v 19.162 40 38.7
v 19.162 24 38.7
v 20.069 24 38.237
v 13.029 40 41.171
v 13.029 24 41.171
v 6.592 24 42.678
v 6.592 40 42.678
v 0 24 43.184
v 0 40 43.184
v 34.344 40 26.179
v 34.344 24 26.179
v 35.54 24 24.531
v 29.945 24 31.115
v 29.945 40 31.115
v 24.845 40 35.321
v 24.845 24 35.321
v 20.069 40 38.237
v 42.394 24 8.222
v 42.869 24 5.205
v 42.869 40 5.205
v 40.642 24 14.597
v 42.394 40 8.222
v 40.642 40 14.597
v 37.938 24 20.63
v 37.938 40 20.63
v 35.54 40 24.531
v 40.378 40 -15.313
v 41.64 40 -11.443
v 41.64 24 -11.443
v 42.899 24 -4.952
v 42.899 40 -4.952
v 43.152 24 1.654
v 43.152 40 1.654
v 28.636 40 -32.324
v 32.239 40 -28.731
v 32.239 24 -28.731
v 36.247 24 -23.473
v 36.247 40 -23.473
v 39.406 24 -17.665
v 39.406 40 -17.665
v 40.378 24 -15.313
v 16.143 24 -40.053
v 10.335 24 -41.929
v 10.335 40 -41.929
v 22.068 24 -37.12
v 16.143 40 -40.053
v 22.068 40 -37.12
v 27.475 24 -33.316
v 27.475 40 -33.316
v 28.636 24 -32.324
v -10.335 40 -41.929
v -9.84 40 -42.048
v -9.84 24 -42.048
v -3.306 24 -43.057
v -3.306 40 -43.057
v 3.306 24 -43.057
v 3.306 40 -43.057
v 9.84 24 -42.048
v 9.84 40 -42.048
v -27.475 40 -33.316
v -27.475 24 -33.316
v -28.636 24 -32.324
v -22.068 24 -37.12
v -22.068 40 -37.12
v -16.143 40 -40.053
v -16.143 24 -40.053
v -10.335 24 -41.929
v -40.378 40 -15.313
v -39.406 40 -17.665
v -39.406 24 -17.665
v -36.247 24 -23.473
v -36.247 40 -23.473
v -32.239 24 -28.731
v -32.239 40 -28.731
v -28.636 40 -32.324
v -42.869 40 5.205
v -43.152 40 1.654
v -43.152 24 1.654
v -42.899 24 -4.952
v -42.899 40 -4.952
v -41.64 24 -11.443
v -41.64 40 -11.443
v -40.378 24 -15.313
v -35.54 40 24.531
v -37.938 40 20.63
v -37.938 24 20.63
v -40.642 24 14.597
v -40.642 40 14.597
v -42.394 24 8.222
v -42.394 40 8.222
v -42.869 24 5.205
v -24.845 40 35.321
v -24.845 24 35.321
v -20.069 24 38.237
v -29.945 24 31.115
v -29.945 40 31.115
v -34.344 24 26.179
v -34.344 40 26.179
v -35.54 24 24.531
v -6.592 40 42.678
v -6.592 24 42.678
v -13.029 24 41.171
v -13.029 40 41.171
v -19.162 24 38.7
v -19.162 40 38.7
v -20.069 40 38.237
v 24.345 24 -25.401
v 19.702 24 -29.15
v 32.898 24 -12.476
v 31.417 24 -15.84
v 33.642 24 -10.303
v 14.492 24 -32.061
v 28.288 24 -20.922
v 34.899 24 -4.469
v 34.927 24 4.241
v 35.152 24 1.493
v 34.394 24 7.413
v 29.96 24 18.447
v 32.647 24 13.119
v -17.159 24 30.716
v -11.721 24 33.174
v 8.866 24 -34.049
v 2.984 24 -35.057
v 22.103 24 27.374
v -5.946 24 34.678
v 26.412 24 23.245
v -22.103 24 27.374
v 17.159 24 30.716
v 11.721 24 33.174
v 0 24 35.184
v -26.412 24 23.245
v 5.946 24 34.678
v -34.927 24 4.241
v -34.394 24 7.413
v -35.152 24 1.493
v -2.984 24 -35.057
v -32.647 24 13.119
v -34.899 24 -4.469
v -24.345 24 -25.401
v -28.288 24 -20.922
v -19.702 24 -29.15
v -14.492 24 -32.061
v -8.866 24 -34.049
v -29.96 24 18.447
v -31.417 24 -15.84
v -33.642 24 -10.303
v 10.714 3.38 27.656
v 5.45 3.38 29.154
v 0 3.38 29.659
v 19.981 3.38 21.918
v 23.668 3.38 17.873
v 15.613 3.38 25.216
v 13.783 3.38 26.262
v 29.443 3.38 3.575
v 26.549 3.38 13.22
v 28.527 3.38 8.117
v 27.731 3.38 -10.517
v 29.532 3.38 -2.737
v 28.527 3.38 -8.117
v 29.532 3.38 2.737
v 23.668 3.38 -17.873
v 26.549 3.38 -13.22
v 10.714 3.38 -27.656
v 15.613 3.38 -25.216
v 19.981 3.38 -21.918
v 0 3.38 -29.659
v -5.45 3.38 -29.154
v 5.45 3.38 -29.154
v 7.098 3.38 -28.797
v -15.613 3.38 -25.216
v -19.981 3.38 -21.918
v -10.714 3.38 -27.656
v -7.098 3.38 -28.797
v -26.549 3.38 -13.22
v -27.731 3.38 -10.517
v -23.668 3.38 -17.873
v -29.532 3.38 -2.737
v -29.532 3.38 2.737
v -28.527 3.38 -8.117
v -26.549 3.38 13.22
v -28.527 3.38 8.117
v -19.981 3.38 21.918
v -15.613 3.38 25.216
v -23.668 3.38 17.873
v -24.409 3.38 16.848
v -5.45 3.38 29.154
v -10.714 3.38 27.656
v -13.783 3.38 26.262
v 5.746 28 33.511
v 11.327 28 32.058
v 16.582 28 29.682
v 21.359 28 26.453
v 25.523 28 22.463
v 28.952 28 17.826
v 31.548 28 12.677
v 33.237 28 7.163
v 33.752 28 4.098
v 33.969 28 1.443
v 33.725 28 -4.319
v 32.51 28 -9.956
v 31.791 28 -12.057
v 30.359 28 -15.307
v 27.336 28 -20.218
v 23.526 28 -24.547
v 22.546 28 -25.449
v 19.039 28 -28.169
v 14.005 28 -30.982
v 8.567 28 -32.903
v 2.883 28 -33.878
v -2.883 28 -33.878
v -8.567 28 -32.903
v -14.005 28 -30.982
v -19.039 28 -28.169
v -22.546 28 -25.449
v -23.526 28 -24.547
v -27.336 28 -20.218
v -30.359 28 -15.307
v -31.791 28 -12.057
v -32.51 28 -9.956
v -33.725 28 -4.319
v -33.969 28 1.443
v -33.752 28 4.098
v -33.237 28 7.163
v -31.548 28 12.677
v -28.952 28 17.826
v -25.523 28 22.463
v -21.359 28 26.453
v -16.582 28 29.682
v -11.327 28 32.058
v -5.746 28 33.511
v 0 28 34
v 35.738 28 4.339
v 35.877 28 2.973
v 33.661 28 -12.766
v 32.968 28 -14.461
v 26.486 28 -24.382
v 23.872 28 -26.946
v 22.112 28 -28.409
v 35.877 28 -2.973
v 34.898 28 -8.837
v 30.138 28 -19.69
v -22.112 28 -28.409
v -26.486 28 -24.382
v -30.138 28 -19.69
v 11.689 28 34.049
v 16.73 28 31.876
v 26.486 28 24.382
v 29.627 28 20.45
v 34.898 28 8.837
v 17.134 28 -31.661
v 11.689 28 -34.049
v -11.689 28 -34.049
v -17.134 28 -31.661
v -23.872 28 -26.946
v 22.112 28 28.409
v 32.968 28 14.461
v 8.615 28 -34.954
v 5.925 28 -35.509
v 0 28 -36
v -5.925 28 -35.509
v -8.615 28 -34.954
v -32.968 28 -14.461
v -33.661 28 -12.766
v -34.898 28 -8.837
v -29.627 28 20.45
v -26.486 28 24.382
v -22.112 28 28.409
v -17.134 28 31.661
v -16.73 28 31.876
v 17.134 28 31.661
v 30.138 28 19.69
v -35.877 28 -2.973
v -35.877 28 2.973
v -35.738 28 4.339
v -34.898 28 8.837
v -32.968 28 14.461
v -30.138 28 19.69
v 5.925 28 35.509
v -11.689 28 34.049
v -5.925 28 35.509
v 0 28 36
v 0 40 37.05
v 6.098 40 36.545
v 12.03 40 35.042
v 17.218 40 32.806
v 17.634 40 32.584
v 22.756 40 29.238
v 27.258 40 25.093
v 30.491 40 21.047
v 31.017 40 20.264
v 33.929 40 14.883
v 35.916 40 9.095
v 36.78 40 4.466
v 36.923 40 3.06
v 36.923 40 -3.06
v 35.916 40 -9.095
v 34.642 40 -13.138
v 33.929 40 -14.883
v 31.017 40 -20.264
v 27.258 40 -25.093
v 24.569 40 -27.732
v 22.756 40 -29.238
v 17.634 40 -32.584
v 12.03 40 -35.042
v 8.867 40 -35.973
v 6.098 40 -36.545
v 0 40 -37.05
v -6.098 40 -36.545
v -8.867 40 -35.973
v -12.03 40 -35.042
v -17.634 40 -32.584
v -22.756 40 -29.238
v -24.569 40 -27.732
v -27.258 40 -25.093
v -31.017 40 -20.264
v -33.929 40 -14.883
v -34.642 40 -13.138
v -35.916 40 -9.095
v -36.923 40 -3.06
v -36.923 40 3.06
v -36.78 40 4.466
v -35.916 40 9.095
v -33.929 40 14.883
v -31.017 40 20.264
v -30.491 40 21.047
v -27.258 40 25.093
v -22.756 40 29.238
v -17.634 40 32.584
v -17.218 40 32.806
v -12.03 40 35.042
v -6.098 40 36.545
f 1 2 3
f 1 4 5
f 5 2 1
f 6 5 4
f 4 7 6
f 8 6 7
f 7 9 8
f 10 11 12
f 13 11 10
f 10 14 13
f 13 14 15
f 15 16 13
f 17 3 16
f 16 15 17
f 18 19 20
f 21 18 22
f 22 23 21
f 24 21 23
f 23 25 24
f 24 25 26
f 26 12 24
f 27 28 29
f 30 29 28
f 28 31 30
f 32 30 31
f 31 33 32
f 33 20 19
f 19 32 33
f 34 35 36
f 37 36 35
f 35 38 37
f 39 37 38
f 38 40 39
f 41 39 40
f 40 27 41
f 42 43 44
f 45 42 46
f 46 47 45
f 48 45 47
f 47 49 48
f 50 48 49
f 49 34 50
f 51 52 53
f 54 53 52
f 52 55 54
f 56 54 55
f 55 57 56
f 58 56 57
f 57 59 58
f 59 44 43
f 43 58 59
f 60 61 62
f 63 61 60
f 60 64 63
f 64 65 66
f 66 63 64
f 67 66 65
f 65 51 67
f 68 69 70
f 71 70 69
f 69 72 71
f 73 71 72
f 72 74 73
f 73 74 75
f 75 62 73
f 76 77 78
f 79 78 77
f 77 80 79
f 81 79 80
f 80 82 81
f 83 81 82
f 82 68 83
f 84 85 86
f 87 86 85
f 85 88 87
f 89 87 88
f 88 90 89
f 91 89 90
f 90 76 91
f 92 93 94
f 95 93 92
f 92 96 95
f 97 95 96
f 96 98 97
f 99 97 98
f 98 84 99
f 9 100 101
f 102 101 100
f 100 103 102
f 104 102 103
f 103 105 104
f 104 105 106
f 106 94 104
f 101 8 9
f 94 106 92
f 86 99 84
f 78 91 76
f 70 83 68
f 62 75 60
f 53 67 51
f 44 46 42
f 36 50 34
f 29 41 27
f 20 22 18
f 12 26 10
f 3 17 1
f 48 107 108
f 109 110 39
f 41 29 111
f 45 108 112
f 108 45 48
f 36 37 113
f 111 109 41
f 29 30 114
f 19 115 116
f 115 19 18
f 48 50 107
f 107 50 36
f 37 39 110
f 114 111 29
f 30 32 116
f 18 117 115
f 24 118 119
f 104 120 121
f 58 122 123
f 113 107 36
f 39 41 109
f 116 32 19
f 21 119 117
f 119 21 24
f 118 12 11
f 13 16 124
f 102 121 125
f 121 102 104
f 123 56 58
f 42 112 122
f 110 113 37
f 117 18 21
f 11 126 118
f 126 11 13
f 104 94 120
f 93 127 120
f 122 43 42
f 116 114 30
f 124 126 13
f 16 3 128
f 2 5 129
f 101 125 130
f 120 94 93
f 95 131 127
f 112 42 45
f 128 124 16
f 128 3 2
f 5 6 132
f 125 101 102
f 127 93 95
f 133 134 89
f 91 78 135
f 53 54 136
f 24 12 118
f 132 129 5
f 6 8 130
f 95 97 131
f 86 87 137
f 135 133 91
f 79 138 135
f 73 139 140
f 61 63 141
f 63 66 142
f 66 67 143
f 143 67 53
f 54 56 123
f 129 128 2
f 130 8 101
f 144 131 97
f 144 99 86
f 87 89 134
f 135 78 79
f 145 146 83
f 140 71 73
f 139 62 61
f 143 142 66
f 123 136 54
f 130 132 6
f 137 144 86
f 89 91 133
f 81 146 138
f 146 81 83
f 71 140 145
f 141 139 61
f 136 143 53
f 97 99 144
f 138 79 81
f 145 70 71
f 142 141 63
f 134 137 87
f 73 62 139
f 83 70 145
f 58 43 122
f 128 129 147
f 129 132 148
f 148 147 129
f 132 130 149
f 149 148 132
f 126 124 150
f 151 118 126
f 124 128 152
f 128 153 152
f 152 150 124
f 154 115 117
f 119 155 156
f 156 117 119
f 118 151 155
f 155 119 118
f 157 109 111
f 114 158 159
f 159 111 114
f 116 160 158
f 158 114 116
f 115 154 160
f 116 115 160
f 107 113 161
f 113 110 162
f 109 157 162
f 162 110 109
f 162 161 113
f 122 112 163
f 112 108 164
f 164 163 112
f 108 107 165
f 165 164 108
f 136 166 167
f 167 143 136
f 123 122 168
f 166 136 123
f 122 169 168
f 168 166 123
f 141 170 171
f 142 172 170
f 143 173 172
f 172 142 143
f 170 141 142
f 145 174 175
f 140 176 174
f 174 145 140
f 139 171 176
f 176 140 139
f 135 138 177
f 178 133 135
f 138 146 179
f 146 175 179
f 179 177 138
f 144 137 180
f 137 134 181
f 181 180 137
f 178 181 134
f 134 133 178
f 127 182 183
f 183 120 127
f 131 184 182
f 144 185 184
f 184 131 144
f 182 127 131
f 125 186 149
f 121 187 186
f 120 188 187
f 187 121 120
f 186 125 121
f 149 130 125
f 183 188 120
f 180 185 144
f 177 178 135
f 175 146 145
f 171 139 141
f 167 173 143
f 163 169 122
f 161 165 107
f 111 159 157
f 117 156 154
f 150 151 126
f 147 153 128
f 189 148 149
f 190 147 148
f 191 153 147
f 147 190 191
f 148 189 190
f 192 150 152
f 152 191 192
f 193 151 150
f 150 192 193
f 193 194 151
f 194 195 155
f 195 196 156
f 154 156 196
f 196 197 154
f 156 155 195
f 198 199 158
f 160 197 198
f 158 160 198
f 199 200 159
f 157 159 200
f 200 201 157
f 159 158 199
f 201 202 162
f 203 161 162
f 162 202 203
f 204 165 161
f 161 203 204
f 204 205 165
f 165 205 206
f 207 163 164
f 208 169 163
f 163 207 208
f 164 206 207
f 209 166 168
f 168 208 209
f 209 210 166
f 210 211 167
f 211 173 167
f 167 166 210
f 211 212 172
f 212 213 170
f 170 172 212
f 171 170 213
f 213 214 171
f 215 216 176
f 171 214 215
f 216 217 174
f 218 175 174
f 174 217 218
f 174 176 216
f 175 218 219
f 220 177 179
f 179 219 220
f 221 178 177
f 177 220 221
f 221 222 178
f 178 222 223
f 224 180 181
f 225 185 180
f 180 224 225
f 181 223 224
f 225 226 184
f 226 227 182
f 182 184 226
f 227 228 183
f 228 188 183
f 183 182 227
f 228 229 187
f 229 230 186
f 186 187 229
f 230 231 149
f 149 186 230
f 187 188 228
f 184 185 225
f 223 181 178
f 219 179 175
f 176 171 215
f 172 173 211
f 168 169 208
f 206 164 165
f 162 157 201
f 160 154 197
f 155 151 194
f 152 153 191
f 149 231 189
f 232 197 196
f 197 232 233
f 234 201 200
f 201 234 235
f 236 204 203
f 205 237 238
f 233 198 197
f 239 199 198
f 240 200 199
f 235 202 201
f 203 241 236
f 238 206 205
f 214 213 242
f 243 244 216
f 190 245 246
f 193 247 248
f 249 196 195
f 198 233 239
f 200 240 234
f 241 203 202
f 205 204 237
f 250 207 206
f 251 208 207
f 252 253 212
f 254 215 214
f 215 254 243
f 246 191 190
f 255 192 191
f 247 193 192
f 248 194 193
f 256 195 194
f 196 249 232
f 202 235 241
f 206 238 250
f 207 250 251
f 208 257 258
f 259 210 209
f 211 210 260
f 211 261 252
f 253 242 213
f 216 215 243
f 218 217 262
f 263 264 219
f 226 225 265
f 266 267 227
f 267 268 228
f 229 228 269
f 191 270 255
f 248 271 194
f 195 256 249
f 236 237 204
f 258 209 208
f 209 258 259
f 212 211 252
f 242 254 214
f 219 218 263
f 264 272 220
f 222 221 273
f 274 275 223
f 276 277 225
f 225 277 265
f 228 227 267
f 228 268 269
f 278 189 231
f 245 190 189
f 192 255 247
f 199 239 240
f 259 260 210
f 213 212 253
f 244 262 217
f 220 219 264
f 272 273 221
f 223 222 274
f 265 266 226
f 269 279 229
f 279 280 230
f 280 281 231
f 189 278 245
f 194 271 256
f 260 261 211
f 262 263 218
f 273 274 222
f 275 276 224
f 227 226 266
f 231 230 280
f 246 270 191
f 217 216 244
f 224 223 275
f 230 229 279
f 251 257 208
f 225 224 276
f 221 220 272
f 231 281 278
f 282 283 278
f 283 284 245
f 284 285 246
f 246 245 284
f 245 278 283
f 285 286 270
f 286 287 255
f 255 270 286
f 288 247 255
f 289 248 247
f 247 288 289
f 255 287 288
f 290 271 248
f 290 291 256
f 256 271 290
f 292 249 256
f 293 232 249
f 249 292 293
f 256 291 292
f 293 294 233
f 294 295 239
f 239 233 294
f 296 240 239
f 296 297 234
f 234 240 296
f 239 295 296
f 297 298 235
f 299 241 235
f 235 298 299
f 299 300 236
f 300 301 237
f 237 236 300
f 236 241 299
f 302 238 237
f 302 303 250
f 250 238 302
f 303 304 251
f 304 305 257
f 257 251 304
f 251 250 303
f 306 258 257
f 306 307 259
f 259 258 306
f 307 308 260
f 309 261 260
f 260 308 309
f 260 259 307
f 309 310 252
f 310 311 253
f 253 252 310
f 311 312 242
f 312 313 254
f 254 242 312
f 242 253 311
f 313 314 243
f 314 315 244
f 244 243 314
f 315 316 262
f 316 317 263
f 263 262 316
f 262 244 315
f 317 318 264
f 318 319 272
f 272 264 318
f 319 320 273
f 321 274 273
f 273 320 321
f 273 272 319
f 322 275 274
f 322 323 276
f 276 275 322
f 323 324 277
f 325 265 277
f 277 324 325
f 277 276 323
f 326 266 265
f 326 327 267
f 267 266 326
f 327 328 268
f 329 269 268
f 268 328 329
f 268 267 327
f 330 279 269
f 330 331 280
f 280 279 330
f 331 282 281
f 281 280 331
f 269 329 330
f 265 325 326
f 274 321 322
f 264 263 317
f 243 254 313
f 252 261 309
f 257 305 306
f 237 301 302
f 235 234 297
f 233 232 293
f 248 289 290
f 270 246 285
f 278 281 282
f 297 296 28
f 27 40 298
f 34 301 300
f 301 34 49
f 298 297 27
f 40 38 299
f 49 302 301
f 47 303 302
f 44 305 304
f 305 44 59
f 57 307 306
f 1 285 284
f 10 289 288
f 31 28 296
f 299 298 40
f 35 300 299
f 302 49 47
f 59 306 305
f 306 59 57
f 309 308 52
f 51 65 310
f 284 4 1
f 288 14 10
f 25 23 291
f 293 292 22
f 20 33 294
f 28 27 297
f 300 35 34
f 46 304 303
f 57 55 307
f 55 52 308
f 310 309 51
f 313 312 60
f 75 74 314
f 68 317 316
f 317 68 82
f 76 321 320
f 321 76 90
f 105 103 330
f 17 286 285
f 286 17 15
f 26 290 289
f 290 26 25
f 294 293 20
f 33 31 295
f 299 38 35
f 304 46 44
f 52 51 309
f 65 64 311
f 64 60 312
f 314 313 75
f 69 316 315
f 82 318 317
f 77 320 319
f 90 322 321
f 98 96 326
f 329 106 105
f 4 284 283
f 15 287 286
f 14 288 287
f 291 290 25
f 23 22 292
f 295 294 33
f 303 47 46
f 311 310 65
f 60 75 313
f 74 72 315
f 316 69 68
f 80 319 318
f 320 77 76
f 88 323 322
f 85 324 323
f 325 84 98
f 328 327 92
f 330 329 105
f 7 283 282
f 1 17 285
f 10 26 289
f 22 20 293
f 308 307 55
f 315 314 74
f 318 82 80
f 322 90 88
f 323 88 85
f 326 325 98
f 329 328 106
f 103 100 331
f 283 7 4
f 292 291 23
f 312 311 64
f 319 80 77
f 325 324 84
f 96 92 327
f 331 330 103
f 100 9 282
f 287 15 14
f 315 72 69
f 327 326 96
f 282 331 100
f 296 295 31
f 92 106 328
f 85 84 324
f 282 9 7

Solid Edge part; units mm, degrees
sketch "Sketch1" plane through (0, 0, 0) normal (0, 0, 1) x (1, 0, 0)
  line L0 (43.184, 24) -> (35.184, 24)
  line L1 (35.184, 24) -> (29.6588, 3.3798)
  line L2 (29.6588, 3.3798) -> (34, 28)
  line L3 (34, 28) -> (36, 28)
  line L4 (36, 28) -> (37.0499, 40)
  line L5 (37.0499, 40) -> (43.184, 40)
  line L6 (43.184, 40) -> (43.184, 24)
revolve "RevolvedProtrusion1" add sketch "Sketch1" angle 360 about axis through (0, 0, 0) along (0, 1, 0)
properties material "Policarbonato"
